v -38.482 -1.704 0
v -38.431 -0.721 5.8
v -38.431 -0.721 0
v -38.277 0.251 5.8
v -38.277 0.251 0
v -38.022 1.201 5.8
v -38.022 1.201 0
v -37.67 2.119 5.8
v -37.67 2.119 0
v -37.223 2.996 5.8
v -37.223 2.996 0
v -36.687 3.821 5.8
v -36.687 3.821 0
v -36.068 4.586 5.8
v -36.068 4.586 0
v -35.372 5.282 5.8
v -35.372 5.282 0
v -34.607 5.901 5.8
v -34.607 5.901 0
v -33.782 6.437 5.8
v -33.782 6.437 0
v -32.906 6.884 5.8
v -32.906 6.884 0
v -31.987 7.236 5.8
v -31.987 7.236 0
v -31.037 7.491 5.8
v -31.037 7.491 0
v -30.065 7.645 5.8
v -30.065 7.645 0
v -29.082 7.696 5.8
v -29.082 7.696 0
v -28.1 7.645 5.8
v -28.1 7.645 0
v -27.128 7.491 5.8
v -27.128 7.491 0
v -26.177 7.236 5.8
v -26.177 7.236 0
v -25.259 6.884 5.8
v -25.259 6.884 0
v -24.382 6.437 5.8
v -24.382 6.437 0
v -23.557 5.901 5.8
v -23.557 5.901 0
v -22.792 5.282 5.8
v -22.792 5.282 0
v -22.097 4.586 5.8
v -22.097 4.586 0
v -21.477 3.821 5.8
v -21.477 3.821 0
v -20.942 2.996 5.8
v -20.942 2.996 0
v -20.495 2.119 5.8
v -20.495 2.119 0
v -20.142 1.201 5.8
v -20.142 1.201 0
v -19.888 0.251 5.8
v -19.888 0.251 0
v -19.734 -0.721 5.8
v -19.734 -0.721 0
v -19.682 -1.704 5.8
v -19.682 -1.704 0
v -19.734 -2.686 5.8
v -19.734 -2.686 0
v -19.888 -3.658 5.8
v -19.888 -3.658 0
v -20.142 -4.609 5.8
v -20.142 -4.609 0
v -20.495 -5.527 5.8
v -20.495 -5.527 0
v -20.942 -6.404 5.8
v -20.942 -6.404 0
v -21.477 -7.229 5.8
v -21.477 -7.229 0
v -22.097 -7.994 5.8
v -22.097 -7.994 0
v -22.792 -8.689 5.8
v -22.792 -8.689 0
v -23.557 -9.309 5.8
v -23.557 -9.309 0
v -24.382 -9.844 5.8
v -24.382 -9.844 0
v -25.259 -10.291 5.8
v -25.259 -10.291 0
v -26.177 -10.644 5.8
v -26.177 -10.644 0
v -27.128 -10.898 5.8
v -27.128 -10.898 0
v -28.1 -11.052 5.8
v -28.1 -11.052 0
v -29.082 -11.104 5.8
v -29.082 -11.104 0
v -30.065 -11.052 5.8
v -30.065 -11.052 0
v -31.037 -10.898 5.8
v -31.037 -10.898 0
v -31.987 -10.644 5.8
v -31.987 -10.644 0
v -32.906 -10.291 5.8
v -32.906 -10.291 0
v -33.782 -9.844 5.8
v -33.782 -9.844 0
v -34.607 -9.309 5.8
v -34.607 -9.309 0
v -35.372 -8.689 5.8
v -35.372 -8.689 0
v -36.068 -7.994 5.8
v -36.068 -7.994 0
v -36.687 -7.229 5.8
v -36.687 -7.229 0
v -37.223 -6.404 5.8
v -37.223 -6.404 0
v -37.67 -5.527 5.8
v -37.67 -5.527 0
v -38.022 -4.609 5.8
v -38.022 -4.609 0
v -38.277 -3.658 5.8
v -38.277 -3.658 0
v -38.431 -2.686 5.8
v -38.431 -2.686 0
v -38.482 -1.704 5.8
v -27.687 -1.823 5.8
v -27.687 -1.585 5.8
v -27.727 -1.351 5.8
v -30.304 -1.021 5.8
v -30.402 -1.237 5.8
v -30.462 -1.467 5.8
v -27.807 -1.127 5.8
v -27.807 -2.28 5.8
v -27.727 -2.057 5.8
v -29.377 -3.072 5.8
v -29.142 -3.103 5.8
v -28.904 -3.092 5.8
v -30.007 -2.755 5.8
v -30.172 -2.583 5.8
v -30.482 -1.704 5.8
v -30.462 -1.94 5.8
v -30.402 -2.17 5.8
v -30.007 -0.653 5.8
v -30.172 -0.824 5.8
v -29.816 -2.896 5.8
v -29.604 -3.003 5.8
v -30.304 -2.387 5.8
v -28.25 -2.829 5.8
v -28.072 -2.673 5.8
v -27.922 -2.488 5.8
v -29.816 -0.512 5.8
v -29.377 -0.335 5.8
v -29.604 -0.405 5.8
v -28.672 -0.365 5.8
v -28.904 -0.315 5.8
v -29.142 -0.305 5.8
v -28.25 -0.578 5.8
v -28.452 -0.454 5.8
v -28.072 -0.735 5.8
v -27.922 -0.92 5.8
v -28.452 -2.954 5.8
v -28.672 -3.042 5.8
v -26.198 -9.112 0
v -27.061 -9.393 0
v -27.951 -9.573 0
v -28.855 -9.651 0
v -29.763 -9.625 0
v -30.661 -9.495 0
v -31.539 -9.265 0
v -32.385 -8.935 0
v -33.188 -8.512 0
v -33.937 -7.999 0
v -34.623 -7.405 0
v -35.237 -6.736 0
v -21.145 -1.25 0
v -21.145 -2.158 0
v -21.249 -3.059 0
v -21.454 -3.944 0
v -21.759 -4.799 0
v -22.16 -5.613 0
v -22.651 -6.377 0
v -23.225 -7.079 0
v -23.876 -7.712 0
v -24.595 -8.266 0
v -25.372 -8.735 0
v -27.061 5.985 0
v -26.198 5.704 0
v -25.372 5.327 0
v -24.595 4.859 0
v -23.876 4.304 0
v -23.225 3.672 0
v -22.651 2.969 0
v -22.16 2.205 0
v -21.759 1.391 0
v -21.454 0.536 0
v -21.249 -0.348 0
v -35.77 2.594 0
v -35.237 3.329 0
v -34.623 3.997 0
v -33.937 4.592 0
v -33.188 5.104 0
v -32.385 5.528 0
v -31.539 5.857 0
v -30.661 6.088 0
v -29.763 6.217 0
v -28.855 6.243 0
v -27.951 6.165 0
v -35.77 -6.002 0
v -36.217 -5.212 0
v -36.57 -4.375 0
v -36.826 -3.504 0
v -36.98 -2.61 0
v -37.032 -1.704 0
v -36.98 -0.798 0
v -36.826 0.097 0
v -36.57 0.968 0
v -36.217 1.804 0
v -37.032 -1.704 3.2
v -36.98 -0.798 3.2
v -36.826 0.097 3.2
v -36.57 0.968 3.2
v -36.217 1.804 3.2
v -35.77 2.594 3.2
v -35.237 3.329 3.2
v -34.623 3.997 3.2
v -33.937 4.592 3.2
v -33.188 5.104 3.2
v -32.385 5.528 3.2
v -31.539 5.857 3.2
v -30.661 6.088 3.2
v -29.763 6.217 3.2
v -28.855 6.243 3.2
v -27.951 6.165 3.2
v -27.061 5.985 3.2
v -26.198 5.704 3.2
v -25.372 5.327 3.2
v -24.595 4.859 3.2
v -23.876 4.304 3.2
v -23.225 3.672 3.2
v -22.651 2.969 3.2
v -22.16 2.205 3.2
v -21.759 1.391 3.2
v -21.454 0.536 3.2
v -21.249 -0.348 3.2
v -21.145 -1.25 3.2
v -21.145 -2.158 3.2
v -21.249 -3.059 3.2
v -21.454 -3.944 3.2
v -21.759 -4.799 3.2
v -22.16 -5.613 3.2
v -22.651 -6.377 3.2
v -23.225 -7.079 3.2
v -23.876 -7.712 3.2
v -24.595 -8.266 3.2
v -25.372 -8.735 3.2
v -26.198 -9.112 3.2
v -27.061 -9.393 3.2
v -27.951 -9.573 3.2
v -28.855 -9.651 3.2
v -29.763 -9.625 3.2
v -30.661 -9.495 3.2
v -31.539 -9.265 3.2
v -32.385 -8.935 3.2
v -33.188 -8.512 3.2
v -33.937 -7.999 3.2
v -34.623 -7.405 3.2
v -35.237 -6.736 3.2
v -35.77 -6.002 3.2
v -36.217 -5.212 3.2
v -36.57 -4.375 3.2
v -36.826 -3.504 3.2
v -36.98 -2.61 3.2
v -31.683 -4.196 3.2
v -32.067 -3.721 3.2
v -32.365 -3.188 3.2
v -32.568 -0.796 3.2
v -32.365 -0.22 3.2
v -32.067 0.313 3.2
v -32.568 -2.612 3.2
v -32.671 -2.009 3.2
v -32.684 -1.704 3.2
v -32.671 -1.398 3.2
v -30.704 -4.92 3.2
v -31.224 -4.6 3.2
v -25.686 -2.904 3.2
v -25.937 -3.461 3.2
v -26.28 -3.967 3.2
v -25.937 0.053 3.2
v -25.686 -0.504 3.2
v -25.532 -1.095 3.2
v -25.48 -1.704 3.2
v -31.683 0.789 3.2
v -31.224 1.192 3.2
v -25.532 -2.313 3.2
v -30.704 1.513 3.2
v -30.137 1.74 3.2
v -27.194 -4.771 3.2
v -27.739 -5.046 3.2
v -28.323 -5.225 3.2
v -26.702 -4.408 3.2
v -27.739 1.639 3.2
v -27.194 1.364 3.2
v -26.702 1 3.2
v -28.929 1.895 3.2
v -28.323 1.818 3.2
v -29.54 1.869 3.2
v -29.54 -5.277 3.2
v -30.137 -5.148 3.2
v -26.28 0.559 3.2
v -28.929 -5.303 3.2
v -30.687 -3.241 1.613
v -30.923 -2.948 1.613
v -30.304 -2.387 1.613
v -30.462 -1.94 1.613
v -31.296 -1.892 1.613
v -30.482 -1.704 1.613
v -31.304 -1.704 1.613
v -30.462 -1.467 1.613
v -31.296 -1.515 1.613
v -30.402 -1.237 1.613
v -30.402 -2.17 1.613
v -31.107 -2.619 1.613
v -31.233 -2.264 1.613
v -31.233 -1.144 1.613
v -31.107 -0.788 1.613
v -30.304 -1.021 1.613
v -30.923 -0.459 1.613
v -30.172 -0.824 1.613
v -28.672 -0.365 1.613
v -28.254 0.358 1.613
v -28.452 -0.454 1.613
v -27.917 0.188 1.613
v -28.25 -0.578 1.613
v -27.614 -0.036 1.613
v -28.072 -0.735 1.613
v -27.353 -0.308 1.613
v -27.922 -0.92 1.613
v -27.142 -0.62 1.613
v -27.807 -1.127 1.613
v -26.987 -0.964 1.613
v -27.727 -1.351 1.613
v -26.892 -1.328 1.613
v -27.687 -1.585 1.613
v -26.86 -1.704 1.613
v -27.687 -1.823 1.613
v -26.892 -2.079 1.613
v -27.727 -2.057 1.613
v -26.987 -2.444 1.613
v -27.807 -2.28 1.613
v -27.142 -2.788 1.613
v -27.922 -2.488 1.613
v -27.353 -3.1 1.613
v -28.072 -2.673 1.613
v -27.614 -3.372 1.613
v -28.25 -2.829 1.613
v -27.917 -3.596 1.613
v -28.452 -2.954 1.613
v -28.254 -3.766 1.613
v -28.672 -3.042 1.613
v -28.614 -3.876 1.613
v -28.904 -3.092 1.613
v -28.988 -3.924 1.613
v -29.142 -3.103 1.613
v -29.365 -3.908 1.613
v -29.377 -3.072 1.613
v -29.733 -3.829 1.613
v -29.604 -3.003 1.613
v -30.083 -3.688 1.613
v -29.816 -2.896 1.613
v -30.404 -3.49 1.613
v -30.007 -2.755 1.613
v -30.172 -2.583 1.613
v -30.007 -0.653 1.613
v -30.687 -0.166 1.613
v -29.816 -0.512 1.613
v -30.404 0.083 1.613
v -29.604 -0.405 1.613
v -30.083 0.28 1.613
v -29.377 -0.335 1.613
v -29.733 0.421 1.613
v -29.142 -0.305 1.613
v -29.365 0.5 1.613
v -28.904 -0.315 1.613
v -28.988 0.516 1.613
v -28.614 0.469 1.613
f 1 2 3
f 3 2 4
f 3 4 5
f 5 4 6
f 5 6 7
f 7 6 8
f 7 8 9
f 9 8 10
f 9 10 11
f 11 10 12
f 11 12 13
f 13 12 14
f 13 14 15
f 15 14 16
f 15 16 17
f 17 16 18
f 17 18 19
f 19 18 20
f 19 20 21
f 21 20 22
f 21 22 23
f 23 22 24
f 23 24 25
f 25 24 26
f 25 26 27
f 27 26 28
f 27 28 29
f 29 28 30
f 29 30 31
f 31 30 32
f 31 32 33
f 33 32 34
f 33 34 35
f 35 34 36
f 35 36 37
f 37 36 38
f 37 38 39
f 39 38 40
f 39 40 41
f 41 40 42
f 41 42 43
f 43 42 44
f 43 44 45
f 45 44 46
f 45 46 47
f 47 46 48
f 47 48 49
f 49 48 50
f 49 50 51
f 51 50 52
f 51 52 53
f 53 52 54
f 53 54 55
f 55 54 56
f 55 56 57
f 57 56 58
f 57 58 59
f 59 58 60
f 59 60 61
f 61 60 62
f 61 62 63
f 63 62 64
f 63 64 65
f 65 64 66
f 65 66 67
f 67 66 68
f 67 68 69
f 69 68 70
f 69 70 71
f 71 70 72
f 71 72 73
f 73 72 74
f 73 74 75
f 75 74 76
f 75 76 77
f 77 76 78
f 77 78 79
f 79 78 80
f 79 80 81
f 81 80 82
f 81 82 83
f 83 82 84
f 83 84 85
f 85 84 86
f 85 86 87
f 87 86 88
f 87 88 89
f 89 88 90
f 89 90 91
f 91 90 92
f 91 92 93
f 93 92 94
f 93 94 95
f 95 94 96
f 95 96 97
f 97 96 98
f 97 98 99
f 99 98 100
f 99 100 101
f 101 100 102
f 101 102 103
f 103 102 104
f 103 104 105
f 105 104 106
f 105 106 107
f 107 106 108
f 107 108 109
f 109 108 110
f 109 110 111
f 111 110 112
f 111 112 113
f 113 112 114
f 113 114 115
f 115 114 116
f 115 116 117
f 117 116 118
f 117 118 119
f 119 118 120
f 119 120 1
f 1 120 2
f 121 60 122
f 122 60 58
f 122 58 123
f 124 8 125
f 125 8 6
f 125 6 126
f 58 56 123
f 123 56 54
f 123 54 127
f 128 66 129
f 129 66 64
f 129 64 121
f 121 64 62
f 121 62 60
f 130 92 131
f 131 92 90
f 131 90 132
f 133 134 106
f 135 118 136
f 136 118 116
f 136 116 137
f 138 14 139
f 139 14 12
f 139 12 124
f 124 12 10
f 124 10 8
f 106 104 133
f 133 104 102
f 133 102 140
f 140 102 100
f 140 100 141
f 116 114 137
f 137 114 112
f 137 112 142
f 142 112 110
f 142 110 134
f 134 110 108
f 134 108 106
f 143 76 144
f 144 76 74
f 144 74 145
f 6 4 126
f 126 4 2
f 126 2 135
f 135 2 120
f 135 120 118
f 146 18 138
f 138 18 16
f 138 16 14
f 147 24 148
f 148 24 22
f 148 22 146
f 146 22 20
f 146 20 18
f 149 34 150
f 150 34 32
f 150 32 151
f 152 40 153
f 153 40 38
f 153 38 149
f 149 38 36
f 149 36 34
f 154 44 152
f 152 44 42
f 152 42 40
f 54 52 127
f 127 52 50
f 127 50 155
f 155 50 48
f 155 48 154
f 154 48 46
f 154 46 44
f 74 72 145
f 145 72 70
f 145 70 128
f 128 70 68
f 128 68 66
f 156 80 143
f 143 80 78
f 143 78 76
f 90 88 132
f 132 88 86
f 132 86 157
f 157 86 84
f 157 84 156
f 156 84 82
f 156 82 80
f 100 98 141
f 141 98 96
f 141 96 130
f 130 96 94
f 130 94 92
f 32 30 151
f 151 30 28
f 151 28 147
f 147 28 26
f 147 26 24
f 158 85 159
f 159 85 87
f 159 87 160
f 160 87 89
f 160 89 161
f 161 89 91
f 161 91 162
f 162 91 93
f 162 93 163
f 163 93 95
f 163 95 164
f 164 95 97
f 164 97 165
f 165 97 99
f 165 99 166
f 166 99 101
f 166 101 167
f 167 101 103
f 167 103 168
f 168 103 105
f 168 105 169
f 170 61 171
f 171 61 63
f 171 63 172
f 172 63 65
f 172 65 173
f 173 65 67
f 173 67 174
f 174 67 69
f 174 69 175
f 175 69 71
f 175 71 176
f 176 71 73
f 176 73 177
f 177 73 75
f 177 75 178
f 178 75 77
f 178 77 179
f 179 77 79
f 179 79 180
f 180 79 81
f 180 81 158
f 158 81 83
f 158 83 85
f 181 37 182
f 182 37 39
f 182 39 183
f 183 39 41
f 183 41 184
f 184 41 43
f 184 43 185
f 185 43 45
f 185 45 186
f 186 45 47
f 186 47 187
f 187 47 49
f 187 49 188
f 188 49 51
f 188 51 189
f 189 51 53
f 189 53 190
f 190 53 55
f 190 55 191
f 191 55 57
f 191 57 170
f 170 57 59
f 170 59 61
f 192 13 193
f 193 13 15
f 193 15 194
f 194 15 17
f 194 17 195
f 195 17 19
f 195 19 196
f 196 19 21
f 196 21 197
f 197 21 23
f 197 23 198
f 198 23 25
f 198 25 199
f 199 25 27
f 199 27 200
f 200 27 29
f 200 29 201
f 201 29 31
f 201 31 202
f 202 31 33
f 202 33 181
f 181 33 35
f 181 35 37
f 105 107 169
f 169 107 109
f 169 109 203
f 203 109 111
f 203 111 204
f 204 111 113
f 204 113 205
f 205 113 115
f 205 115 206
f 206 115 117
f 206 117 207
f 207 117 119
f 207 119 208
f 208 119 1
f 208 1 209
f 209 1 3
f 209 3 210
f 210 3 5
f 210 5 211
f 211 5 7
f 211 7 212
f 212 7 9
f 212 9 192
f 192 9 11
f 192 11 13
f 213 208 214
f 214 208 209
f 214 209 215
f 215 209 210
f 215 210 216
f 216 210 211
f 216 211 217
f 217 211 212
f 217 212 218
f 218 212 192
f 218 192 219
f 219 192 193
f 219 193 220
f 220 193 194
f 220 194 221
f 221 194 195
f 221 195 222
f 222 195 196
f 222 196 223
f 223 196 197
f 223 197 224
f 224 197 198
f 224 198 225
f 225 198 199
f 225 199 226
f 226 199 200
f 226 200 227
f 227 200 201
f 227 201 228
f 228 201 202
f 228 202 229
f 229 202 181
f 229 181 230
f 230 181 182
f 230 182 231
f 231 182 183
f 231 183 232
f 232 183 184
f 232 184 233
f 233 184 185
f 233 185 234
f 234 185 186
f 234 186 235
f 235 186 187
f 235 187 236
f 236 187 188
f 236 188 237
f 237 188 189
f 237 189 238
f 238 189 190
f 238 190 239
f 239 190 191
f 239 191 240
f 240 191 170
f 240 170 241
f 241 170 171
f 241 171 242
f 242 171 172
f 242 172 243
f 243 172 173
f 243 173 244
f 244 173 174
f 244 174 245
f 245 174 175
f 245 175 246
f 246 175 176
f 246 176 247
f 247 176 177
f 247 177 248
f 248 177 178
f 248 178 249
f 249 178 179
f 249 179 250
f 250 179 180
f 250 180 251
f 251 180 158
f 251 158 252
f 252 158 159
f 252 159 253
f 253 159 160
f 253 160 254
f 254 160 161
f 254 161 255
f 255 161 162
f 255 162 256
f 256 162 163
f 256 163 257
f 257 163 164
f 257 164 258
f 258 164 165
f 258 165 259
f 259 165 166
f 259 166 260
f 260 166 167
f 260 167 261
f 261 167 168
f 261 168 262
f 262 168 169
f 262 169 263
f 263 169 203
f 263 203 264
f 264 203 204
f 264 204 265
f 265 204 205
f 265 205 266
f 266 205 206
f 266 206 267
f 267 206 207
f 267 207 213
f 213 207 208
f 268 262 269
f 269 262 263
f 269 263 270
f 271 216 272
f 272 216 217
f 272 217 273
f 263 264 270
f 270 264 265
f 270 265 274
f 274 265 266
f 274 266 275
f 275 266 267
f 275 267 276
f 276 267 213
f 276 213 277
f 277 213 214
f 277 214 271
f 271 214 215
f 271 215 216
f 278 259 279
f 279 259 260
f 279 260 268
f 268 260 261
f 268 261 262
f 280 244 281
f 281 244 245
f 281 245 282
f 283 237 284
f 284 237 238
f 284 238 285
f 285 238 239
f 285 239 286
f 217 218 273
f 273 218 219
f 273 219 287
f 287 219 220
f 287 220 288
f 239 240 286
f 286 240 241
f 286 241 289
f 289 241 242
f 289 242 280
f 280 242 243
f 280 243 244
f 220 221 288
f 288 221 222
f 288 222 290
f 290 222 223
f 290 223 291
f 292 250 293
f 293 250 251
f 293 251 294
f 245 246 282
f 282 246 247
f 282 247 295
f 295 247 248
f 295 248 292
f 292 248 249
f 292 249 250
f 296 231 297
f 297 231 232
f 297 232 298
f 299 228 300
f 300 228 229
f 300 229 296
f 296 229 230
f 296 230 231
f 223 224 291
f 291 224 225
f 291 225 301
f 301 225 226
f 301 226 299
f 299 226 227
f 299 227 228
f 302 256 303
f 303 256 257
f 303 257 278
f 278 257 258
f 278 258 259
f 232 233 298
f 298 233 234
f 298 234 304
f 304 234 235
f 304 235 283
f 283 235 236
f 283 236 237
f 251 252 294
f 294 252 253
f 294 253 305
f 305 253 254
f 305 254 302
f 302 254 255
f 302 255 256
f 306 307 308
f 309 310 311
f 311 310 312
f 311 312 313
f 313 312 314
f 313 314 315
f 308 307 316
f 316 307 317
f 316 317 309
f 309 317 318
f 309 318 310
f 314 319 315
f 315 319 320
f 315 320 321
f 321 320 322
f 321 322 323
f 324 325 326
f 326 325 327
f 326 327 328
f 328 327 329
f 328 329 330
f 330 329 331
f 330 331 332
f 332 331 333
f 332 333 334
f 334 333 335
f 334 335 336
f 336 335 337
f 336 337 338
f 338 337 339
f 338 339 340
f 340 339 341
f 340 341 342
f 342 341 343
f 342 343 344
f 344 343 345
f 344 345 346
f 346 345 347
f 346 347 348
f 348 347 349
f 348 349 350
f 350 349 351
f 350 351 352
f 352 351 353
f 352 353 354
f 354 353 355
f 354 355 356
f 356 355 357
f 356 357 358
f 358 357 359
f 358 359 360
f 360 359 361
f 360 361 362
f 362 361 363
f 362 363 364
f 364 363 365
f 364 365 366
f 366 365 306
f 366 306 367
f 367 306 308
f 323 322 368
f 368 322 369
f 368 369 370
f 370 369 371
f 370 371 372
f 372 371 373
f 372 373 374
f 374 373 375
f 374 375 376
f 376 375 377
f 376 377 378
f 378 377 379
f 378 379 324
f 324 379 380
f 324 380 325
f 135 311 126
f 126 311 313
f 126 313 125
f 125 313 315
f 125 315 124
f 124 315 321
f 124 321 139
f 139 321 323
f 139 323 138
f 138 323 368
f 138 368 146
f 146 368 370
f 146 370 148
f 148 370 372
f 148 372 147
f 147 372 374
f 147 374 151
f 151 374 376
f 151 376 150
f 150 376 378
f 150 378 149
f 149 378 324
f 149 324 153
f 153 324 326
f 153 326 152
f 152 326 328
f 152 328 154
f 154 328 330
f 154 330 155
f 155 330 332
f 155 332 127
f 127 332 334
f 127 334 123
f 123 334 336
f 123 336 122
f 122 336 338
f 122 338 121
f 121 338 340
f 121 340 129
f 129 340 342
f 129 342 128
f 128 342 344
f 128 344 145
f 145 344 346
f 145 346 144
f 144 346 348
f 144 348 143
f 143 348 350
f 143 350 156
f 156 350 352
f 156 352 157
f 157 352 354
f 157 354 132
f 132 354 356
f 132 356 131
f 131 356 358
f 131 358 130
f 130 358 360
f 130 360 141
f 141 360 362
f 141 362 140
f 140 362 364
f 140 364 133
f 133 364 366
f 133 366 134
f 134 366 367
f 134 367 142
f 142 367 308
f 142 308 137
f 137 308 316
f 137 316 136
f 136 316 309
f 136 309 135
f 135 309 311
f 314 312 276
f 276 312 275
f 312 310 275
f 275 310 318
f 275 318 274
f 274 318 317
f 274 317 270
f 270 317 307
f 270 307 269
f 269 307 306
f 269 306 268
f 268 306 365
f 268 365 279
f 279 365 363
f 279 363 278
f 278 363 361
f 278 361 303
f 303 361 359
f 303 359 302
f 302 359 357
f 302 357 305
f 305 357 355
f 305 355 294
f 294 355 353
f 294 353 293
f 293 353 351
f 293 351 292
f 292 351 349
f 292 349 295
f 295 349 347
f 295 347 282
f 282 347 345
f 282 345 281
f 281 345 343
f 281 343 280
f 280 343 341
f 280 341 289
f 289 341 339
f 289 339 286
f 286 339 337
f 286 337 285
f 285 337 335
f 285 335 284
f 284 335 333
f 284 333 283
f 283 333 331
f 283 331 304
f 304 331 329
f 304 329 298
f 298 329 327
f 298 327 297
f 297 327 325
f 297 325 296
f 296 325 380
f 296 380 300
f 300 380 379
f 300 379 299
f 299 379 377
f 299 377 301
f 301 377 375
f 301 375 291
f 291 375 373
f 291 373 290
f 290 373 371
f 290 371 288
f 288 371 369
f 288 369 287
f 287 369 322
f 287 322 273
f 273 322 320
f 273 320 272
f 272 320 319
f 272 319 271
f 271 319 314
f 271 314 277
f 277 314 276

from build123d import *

# Parameters (mm, degrees)
SKETCH1_R           = 9.4
BOSS_EXTRUDE1_DEPTH = 5.8
SKETCH2_R           = 7.95
CUT_EXTRUDE1_DEPTH  = 3.2
SKETCH3_R           = 1
BOSS_EXTRUDE2_DEPTH = 1.5875
SKETCH4_R           = 3.7
BOSS_EXTRUDE3_DEPTH = 3
SKETCH5_R           = 1.4
CUT_EXTRUDE2_DEPTH  = 41.270506735
CHAMFER2_SIZE       = 1.477787454
CHAMFER2_SIZE_2     = 1.7


with BuildPart() as part:
    # Sketch1 → Boss-Extrude1 (new body)
    with BuildSketch(Plane.XY):
        with Locations((-29.082250471, -1.703826149)):
            Circle(SKETCH1_R)
    extrude(amount=BOSS_EXTRUDE1_DEPTH)

    # Sketch2 → Cut-Extrude1 (cut)
    with BuildSketch(Plane(origin=(0, 0, 0), x_dir=(-1, 0, 0), z_dir=(0, 0, -1))):
        with Locations((29.082250471, -1.703826149)):
            Circle(SKETCH2_R)
    extrude(amount=-CUT_EXTRUDE1_DEPTH, mode=Mode.SUBTRACT)

    # Sketch3 → Boss-Extrude2 (add)
    with BuildSketch(Plane(origin=(0, 0, 3.2), x_dir=(-1, 0, 0), z_dir=(0, 0, -1))):
        with Locations((29.082250471, -1.703826149)):
            Circle(SKETCH3_R)
    extrude(amount=BOSS_EXTRUDE2_DEPTH)

    # Sketch4 → Boss-Extrude3 (add)
    with BuildSketch(Plane(origin=(0, 0, 1.6125), x_dir=(-1, 0, 0), z_dir=(0, 0, -1))):
        with Locations((29.082250471, -1.703826149)):
            Circle(SKETCH4_R)
    extrude(amount=-BOSS_EXTRUDE3_DEPTH)

    # Sketch5 → Cut-Extrude2 (cut, through all)
    with BuildSketch(Plane(origin=(0, 0, 1.6125), x_dir=(-1, 0, 0), z_dir=(0, 0, -1))):
        with Locations((29.082250471, -1.703826149)):
            Circle(SKETCH5_R)
    extrude(amount=-CUT_EXTRUDE2_DEPTH, mode=Mode.SUBTRACT)

    # Chamfer2
    # the kernel refuses this chamfer: 1.7, 1.477787454 mm, written as the material it takes off along each edge
    with BuildSketch(Plane(origin=(-29.082250471, -1.703826149, 1.6125), x_dir=(-1, 0, 0), z_dir=(0, -1, 0))) as chamfer2_piece_1_section:
        Polygon((3.7 - CHAMFER2_SIZE, 0), (3.7, -CHAMFER2_SIZE_2), (3.7, 0), align=None)
    chamfer2_piece_1 = revolve(axis=Axis((-29.082250471, -1.703826149, 1.6125), (0, 0, -1)), mode=Mode.PRIVATE)
    chamfer2_piece_1 = split(chamfer2_piece_1, bisect_by=Plane(origin=(-26.169502039, -1.703826149, 3.2), z_dir=(0, 0, -1)), keep=Keep.TOP, mode=Mode.PRIVATE)
    add(chamfer2_piece_1, mode=Mode.SUBTRACT)


solid = part.part
